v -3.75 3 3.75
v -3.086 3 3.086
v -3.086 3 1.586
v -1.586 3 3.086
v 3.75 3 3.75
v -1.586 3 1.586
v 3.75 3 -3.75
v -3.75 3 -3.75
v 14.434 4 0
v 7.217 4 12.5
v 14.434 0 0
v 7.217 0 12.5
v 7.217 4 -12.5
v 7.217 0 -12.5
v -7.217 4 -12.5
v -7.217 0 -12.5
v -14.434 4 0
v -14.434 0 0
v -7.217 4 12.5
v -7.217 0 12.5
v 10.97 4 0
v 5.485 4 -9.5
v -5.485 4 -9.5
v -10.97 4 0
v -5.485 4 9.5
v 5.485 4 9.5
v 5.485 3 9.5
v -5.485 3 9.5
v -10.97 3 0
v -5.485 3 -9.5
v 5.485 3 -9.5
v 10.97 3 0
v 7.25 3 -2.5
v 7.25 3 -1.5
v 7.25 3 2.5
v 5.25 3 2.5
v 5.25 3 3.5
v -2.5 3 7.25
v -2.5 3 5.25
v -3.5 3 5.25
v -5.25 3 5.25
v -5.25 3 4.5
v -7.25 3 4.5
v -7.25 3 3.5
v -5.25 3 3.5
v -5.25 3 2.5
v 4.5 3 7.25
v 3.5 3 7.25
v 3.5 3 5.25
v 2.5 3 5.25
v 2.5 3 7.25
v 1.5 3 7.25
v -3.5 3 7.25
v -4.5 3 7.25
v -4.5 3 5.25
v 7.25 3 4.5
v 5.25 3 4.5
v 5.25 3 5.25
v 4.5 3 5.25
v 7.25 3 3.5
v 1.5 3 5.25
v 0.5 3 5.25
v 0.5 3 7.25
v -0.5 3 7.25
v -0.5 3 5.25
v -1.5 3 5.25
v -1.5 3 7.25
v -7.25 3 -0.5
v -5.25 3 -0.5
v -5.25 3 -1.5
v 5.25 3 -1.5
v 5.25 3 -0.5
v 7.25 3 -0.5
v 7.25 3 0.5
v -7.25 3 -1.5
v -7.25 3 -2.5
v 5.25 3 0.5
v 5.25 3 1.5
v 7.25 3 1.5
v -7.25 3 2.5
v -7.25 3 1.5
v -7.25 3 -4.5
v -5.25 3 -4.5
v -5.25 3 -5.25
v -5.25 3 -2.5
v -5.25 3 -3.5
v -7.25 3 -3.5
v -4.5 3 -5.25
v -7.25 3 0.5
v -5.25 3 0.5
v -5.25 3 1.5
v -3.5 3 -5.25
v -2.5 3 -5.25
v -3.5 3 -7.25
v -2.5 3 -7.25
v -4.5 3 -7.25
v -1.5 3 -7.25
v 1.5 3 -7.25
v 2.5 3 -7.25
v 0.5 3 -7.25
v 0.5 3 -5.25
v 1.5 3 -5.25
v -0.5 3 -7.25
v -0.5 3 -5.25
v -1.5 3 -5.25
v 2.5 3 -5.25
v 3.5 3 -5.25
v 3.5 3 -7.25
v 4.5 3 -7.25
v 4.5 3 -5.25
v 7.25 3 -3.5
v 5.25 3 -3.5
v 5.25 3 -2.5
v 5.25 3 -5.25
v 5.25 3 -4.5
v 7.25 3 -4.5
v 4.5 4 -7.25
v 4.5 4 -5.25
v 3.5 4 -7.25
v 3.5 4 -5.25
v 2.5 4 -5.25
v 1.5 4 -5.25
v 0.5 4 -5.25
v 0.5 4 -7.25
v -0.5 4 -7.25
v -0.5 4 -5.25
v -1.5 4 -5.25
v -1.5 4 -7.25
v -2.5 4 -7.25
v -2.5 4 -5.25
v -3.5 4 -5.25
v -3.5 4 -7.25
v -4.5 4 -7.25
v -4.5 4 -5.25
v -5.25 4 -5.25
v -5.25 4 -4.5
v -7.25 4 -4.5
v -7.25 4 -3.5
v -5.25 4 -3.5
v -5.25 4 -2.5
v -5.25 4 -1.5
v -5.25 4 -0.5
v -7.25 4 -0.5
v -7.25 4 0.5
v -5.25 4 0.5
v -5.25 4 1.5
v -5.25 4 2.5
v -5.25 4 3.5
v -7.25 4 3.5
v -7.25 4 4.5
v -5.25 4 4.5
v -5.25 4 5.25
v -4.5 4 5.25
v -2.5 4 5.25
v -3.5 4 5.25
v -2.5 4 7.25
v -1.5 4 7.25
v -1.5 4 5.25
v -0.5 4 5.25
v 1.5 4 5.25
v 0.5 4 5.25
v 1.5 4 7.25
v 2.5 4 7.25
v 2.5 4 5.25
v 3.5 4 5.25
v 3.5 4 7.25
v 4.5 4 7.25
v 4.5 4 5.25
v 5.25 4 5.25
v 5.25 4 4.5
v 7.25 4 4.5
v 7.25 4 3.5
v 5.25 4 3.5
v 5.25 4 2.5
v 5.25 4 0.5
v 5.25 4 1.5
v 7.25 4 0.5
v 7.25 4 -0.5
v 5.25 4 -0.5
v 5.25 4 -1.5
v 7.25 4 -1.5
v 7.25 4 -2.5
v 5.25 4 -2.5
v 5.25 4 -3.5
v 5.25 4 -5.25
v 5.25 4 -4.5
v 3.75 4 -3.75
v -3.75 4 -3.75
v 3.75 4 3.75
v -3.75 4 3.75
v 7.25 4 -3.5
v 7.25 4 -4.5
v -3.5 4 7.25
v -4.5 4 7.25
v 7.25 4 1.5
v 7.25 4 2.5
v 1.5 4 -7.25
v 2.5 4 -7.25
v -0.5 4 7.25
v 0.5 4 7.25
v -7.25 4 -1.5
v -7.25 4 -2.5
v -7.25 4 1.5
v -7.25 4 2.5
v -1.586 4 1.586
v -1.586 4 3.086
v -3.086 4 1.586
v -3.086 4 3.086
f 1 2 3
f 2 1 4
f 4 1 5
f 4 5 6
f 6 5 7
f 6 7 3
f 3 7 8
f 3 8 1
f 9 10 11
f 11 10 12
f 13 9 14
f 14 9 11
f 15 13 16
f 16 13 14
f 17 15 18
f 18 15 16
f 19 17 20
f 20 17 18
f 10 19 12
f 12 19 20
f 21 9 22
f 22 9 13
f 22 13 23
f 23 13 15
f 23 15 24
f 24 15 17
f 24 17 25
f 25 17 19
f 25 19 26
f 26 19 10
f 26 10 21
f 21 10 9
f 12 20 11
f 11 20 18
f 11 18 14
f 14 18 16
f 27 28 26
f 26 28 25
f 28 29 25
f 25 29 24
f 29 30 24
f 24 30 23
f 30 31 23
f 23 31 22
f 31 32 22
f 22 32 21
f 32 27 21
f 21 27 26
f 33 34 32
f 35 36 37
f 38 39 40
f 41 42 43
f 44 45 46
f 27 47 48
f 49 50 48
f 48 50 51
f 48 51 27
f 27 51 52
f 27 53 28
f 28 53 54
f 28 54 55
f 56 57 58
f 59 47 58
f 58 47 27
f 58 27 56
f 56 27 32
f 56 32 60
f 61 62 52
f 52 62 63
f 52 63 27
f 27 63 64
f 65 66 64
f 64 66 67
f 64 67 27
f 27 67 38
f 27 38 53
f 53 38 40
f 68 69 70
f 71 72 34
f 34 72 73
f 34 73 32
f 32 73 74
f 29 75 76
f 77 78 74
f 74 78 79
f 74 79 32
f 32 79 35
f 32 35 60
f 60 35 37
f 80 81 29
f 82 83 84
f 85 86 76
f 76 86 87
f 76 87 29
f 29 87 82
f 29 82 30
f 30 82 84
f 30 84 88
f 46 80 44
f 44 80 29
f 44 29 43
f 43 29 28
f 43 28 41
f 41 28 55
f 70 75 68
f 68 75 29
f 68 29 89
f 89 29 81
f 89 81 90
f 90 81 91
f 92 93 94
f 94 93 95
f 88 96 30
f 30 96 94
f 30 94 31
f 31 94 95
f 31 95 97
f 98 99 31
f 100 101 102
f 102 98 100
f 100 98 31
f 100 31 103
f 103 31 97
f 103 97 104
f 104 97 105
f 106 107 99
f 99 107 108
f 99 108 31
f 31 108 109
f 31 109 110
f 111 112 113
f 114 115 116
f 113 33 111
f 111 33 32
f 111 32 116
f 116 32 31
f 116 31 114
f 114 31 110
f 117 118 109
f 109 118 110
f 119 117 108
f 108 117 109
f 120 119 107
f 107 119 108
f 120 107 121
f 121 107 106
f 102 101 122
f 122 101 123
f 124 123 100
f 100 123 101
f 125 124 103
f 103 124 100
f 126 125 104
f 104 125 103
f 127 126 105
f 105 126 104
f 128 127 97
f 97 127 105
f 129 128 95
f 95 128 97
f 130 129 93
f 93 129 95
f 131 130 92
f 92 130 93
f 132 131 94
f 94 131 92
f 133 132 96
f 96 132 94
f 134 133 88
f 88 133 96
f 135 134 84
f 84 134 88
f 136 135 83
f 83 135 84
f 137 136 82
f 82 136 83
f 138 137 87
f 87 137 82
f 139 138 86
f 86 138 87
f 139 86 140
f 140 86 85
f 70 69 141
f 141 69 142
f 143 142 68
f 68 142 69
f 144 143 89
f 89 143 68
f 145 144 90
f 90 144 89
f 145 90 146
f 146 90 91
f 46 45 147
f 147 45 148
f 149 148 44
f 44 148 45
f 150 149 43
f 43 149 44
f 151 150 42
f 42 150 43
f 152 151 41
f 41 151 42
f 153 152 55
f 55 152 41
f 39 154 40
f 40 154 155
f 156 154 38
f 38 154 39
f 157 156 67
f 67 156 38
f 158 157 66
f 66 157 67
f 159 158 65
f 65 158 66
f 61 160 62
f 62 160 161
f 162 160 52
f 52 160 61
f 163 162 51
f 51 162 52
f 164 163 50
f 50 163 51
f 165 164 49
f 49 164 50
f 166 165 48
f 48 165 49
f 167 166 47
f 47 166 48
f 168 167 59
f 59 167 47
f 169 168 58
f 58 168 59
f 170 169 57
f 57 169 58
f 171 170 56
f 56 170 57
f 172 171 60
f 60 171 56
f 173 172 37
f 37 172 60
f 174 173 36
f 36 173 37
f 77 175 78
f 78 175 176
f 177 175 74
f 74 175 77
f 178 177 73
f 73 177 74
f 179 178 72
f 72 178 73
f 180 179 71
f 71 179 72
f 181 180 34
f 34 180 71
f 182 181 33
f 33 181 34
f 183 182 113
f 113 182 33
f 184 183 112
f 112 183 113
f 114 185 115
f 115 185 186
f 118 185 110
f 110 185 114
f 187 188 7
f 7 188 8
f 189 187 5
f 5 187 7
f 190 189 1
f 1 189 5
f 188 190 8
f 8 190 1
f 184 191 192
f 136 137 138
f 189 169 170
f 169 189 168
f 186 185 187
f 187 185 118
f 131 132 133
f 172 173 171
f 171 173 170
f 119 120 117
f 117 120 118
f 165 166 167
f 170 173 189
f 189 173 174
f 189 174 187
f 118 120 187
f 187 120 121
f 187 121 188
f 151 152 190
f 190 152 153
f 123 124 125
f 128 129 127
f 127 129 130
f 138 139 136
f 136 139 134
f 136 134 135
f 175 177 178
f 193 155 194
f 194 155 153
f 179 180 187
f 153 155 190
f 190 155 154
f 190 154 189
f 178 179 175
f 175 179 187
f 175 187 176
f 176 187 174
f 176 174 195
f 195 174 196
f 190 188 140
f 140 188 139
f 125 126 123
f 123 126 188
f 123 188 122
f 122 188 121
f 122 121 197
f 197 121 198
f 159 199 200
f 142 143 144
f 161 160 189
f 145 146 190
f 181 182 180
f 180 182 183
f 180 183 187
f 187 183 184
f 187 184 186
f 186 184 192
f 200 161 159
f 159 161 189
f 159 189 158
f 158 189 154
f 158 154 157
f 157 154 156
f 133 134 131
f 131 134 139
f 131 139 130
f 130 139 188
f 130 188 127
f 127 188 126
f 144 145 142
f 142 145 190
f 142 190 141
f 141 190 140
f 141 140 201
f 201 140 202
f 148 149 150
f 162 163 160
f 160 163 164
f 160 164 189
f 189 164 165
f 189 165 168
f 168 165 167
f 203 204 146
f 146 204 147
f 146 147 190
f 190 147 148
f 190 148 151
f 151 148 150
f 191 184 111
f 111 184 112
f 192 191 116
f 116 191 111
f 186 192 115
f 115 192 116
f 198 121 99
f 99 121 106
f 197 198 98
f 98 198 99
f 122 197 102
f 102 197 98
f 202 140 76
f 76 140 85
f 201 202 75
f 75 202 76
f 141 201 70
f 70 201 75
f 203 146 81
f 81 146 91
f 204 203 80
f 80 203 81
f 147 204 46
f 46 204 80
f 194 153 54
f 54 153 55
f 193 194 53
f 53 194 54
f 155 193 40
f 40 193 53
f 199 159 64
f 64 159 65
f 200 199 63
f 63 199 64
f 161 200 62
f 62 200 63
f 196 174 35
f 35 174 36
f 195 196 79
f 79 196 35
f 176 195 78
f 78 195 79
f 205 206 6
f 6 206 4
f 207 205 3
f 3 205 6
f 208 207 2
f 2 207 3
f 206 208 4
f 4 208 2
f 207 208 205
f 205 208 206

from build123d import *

# Parameters (mm, degrees)
EXTRUDE_1_DEPTH     = 4
CUT_EXTRUDE_1_DEPTH = 1
SKETCH_3_W          = 7.5
SKETCH_3_H          = 7.5
EXTRUDE_2_DEPTH     = 1
SKETCH_4_W          = 1.5
SKETCH_4_H          = 1.5
EXTRUDE_3_DEPTH     = 1


with BuildPart() as part:
    # 草图1 → 凸台-拉伸1 (new body)
    with BuildSketch(Plane(origin=(0, 0, 0), x_dir=(1, 0, 0), z_dir=(0, 1, 0))):
        Polygon((14.43375673, 0), (7.216878365, 12.5), (-7.216878365, 12.5), (-14.43375673, 0), (-7.216878365, -12.5), (7.216878365, -12.5), align=None)
    extrude(amount=EXTRUDE_1_DEPTH)

    # 草图2 → 切除-拉伸1 (cut)
    with BuildSketch(Plane(origin=(0, 4, 0), x_dir=(1, 0, 0), z_dir=(0, 1, 0))):
        Polygon((5.484827557, -9.5), (10.969655115, 0), (5.484827557, 9.5), (-5.484827557, 9.5), (-10.969655115, 0), (-5.484827557, -9.5), align=None)
    extrude(amount=-CUT_EXTRUDE_1_DEPTH, mode=Mode.SUBTRACT)

    # 草图3 → 凸台-拉伸2 (add)
    with BuildSketch(Plane(origin=(0, 3, 0), x_dir=(1, 0, 0), z_dir=(0, 1, 0))):
        Polygon((7.25, -3.5), (5.25, -3.5), (5.25, -2.5), (7.25, -2.5), (7.25, -1.5), (5.25, -1.5), (5.25, -0.5), (7.25, -0.5), (7.25, 0.5), (5.25, 0.5), (5.25, 1.5), (7.25, 1.5), (7.25, 2.5), (5.25, 2.5), (5.25, 3.5), (7.25, 3.5), (7.25, 4.5), (5.25, 4.5), (5.25, 5.25), (4.5, 5.25), (4.5, 7.25), (3.5, 7.25), (3.5, 5.25), (2.5, 5.25), (2.5, 7.25), (1.5, 7.25), (1.5, 5.25), (0.5, 5.25), (0.5, 7.25), (-0.5, 7.25), (-0.5, 5.25), (-1.5, 5.25), (-1.5, 7.25), (-2.5, 7.25), (-2.5, 5.25), (-3.5, 5.25), (-3.5, 7.25), (-4.5, 7.25), (-4.5, 5.25), (-5.25, 5.25), (-5.25, 4.5), (-7.25, 4.5), (-7.25, 3.5), (-5.25, 3.5), (-5.25, 2.5), (-7.25, 2.5), (-7.25, 1.5), (-5.25, 1.5), (-5.25, 0.5), (-7.25, 0.5), (-7.25, -0.5), (-5.25, -0.5), (-5.25, -1.5), (-7.25, -1.5), (-7.25, -2.5), (-5.25, -2.5), (-5.25, -3.5), (-7.25, -3.5), (-7.25, -4.5), (-5.25, -4.5), (-5.25, -5.25), (-4.5, -5.25), (-4.5, -7.25), (-3.5, -7.25), (-3.5, -5.25), (-2.5, -5.25), (-2.5, -7.25), (-1.5, -7.25), (-1.5, -5.25), (-0.5, -5.25), (-0.5, -7.25), (0.5, -7.25), (0.5, -5.25), (1.5, -5.25), (1.5, -7.25), (2.5, -7.25), (2.5, -5.25), (3.5, -5.25), (3.5, -7.25), (4.5, -7.25), (4.5, -5.25), (5.25, -5.25), (5.25, -4.5), (7.25, -4.5), align=None)
        Rectangle(SKETCH_3_W, SKETCH_3_H, mode=Mode.SUBTRACT)
    extrude(amount=EXTRUDE_2_DEPTH)

    # 草图4 → 凸台-拉伸3 (add)
    with BuildSketch(Plane(origin=(0, 3, 0), x_dir=(1, 0, 0), z_dir=(0, 1, 0))):
        with Locations((-2.335786438, -2.335786438)):
            Rectangle(SKETCH_4_W, SKETCH_4_H)
    extrude(amount=EXTRUDE_3_DEPTH)


solid = part.part
